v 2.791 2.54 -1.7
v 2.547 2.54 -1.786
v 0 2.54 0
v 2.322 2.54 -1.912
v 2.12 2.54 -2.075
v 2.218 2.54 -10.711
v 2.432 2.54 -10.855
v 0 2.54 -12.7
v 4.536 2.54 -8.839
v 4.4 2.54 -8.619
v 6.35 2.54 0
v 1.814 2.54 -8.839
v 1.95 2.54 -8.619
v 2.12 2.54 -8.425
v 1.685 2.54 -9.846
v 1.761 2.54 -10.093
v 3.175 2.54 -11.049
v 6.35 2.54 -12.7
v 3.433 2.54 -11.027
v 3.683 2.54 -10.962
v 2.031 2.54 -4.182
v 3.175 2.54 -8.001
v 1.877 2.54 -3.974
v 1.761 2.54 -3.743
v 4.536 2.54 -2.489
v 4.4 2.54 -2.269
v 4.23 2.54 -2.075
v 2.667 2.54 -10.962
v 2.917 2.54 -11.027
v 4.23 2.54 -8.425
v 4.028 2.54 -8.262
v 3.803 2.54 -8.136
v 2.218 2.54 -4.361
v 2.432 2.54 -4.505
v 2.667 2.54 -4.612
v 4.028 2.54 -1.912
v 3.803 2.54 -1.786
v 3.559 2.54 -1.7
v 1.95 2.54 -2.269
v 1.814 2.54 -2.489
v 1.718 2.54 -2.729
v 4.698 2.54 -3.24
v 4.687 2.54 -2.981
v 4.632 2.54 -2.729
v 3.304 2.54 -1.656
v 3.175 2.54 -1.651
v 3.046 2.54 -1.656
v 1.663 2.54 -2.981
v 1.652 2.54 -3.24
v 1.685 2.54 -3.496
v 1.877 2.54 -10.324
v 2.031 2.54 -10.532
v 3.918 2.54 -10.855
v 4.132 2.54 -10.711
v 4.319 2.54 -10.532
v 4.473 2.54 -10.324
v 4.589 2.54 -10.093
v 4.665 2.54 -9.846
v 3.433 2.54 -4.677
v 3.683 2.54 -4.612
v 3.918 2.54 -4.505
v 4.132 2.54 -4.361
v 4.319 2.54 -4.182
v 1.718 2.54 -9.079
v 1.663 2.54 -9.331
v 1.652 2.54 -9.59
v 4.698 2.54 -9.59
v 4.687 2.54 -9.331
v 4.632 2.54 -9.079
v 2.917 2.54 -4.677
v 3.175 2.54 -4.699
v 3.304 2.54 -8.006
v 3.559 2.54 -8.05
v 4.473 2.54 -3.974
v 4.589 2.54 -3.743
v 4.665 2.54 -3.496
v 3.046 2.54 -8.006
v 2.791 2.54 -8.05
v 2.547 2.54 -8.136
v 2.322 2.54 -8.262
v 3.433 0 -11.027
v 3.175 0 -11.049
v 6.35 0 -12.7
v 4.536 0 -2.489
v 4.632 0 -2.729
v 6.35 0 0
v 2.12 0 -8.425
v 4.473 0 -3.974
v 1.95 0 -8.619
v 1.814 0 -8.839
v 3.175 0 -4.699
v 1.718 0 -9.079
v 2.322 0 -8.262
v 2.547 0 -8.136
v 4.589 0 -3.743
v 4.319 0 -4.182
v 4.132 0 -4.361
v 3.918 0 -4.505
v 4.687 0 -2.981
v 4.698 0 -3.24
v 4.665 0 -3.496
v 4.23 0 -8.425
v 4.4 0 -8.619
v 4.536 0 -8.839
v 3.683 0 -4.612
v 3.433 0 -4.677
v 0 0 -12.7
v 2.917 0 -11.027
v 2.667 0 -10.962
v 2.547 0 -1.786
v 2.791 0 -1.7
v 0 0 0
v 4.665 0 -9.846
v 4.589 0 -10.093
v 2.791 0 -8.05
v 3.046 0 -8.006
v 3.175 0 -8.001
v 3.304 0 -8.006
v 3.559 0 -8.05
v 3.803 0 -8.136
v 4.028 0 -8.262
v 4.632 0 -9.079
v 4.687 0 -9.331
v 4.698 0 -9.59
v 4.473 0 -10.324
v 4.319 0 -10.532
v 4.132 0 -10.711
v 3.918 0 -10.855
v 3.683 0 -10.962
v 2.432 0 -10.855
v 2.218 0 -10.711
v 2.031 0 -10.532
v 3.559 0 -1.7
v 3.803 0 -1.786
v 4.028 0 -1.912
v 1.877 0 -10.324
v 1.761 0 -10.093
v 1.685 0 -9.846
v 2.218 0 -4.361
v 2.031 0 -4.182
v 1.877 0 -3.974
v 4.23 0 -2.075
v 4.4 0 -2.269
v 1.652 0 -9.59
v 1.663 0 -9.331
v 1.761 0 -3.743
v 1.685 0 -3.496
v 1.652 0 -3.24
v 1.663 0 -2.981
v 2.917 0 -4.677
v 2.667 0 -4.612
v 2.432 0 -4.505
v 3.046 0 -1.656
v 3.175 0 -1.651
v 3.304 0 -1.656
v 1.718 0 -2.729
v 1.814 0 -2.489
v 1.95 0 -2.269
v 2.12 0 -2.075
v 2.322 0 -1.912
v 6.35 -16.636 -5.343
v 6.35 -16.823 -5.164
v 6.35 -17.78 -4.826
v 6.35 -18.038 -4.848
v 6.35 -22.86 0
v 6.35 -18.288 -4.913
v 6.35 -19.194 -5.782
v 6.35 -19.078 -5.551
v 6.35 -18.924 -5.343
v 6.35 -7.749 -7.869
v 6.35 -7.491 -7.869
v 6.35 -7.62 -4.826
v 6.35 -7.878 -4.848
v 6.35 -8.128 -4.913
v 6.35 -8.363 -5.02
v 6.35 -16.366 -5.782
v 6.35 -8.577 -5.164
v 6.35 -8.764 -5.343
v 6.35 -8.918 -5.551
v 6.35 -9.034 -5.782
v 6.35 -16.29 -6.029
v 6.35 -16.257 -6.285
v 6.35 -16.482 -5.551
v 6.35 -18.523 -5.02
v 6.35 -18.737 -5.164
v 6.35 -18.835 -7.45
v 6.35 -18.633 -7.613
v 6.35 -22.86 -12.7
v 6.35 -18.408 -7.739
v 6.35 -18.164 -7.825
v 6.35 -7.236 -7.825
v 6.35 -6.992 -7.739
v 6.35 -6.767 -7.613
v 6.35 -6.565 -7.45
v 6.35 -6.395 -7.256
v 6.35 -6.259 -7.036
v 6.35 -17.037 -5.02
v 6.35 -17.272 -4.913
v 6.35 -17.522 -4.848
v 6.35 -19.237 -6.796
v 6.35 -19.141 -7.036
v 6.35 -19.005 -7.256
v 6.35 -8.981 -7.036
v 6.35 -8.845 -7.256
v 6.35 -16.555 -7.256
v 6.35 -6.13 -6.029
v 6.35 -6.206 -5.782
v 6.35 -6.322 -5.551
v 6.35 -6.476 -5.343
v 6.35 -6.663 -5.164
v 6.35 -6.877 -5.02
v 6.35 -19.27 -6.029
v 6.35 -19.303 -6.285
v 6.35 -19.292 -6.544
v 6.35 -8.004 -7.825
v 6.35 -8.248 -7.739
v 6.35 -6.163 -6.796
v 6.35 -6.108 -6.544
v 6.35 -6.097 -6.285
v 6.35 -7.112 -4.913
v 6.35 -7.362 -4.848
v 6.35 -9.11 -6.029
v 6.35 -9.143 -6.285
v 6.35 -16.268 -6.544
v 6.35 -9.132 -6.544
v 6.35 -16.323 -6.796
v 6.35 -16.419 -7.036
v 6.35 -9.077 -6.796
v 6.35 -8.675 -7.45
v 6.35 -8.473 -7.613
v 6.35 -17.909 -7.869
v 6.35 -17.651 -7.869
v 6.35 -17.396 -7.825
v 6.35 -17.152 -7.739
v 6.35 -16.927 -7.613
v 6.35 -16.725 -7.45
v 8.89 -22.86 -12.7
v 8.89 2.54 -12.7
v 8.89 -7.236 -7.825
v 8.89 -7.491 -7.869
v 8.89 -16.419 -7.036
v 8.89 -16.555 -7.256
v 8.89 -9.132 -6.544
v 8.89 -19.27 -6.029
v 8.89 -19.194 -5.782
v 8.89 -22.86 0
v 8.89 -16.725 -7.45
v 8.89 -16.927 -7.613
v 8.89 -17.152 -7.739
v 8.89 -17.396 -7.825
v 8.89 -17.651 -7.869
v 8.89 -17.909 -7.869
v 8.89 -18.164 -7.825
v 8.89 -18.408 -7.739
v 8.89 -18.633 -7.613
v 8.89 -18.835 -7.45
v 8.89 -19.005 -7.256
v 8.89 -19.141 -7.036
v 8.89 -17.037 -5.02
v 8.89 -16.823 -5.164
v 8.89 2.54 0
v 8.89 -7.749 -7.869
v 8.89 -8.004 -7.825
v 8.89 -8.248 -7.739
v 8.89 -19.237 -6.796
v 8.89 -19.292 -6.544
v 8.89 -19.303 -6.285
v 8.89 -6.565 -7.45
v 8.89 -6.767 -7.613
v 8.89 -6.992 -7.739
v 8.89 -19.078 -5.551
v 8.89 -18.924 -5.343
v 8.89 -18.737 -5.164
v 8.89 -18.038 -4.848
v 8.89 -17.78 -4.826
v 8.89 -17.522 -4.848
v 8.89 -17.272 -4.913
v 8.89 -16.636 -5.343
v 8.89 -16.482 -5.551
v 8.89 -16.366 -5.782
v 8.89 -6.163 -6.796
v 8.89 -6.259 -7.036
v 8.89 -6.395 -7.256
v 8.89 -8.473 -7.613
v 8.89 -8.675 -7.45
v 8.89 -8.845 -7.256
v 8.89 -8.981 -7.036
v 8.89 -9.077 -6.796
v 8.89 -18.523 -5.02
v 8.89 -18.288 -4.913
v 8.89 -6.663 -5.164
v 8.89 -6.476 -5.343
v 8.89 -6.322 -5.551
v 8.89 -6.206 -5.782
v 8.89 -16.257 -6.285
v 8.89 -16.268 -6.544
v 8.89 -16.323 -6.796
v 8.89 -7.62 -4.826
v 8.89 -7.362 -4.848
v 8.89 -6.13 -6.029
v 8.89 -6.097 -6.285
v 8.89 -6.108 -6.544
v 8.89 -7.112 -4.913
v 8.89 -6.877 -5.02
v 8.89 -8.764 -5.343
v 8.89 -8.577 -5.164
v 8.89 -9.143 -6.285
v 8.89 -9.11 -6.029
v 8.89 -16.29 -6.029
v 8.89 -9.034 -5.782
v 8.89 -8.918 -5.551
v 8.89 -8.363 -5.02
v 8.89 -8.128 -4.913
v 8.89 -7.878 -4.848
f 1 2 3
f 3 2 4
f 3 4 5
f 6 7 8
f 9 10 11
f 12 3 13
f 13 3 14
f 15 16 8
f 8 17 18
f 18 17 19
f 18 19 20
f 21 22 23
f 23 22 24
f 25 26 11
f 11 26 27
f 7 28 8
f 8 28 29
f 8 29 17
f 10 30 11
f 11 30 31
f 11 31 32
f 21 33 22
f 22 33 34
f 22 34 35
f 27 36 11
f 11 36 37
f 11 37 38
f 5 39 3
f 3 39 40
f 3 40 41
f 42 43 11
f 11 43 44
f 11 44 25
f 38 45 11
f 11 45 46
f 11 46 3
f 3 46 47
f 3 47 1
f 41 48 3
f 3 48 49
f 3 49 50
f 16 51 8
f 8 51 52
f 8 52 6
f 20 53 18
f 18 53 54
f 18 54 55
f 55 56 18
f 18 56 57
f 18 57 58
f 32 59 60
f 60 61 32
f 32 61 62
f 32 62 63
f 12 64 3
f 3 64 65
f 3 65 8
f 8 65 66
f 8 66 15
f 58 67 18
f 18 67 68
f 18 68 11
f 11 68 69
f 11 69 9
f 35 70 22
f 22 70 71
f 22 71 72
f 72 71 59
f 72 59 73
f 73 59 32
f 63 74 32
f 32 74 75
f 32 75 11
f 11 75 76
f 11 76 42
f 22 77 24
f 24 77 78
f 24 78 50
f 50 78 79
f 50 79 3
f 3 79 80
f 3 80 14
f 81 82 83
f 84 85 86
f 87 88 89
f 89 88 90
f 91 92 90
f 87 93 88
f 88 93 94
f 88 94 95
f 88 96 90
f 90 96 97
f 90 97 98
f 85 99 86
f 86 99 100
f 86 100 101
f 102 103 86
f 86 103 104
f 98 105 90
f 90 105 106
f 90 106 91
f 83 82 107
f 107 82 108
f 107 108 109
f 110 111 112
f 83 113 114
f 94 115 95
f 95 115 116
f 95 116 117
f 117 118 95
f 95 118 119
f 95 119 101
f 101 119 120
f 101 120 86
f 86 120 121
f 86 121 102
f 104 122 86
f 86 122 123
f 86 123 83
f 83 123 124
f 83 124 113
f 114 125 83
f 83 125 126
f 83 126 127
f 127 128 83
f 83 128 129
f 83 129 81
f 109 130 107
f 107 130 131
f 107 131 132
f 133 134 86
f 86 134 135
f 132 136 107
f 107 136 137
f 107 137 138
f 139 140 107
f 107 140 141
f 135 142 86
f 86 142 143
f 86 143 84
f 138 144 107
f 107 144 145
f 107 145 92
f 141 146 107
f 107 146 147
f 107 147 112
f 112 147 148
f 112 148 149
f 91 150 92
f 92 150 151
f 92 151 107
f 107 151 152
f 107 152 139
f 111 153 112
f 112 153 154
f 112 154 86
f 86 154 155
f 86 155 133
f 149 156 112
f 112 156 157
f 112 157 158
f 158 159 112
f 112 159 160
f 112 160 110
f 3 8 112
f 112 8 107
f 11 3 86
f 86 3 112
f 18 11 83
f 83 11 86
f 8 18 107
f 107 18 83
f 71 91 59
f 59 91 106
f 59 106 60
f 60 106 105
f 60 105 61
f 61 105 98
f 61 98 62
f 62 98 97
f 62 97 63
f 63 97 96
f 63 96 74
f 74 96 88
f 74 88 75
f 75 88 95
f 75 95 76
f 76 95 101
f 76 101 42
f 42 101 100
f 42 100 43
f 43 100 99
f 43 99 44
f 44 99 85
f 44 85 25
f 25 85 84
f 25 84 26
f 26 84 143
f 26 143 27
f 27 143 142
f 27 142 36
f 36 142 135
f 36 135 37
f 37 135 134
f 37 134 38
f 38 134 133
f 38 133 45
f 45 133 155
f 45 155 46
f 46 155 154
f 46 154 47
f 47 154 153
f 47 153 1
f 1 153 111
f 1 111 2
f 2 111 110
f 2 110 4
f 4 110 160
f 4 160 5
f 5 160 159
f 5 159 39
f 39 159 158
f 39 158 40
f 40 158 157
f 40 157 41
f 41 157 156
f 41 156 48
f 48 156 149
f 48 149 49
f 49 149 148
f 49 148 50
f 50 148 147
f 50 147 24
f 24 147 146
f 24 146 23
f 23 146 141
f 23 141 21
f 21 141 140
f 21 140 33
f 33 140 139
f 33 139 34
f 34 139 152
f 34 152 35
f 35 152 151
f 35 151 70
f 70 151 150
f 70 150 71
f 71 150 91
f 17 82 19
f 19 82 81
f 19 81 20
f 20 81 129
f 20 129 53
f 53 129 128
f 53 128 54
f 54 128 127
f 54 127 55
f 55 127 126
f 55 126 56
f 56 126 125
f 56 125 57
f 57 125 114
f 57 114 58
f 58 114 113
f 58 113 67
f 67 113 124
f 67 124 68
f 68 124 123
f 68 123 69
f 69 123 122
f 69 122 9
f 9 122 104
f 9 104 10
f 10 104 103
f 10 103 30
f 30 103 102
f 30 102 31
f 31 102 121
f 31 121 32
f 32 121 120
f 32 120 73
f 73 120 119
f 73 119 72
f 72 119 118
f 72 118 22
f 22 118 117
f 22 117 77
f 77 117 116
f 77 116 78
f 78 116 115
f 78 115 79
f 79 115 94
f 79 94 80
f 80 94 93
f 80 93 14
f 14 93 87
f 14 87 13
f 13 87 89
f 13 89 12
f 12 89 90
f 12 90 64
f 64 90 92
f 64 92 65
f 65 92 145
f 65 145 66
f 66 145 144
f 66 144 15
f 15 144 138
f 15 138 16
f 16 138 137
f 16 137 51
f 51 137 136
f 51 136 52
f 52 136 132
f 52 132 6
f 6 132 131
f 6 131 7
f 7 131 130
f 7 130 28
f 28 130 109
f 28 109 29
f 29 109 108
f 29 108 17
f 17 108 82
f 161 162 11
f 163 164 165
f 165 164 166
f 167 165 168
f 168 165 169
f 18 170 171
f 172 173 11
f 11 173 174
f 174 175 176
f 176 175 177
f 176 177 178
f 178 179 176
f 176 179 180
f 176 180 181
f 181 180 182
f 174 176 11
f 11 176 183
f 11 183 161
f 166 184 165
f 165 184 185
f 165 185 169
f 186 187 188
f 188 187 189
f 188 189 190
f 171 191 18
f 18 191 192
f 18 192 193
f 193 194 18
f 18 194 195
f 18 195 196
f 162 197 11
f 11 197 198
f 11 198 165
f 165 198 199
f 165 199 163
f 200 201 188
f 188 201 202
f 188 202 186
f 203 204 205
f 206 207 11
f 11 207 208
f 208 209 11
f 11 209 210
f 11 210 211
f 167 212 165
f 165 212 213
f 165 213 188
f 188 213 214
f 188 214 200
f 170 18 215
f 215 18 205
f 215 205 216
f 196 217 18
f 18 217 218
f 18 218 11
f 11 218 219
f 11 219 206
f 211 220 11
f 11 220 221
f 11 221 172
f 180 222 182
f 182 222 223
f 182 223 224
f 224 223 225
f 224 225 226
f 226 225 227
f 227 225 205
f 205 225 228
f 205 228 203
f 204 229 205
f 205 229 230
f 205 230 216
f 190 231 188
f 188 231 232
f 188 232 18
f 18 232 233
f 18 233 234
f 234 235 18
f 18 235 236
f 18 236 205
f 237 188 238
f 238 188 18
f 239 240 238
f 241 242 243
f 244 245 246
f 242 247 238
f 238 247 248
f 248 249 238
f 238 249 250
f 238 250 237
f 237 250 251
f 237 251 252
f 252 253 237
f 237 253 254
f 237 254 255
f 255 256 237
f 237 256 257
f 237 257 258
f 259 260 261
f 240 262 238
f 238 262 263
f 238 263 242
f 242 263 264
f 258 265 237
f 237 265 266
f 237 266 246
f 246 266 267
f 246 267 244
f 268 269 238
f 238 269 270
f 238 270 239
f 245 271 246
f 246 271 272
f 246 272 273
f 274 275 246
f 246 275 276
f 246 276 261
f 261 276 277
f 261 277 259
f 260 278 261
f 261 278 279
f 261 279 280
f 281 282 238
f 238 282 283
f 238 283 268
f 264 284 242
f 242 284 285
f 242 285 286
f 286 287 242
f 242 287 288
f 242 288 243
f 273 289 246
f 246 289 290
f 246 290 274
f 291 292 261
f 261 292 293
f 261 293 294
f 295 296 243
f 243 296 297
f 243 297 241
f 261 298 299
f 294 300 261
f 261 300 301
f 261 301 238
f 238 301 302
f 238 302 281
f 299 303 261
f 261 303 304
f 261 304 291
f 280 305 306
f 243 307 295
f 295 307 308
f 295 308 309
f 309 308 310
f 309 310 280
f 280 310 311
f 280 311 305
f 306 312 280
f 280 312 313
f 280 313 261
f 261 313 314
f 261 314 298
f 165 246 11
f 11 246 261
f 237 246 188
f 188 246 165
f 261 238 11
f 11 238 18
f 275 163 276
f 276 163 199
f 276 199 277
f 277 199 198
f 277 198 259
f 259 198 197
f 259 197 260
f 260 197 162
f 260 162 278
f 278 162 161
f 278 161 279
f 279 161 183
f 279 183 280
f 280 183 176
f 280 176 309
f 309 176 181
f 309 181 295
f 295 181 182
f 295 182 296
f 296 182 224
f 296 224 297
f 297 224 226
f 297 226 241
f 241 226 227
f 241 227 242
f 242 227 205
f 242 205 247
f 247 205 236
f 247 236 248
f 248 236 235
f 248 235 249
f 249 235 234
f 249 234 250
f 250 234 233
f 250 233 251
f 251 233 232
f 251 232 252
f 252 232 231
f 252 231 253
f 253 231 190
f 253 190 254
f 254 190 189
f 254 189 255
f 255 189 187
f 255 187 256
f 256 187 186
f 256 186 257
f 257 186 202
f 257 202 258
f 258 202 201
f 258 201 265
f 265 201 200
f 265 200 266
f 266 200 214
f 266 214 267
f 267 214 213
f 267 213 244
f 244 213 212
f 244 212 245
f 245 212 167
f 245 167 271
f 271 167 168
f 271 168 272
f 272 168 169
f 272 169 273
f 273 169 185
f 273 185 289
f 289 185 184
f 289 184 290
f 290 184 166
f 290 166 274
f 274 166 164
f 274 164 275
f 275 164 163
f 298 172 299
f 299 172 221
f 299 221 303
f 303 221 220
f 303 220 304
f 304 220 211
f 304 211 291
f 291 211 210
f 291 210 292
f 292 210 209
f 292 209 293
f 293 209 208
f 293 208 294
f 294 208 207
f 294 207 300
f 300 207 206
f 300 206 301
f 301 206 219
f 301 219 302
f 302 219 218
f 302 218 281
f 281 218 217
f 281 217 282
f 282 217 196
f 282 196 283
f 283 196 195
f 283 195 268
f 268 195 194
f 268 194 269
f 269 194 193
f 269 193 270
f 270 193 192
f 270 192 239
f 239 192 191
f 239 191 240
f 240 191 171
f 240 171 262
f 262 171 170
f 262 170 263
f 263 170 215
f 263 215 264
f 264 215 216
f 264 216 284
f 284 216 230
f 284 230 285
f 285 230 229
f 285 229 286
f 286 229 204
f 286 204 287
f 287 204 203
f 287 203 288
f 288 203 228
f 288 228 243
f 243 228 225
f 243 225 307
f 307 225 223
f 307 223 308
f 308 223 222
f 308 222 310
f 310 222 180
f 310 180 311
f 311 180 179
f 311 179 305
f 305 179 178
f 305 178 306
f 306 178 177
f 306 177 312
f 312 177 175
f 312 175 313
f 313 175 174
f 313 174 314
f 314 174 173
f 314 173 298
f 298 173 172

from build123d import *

# Parameters (mm, degrees)
SKETCH1_W           = 6.35
SKETCH1_H           = 12.7
SKETCH1_R           = 1.524
BOSS_EXTRUDE1_DEPTH = 2.54
SKETCH3_W           = 2.54
SKETCH3_H           = 12.7
BOSS_EXTRUDE3_DEPTH = 25.4
SKETCH4_R           = 1.524
CUT_EXTRUDE1_DEPTH  = 27.910817528


with BuildPart() as part:
    # Sketch1 → Boss-Extrude1 (new body)
    with BuildSketch(Plane(origin=(0, 0, 0), x_dir=(1, 0, 0), z_dir=(0, 1, 0))):
        with Locations((3.175, 6.35)):
            Rectangle(SKETCH1_W, SKETCH1_H)
        with Locations(Location((3.175, 3.175, 0), (0, 0, 270))):
            Circle(SKETCH1_R, mode=Mode.SUBTRACT)
        with Locations(Location((3.175, 9.525, 0), (0, 0, 270))):
            Circle(SKETCH1_R, mode=Mode.SUBTRACT)
    extrude(amount=BOSS_EXTRUDE1_DEPTH)


with BuildPart() as body_2:
    # Sketch3 → Boss-Extrude3 (new body)
    with BuildSketch(Plane(origin=(0, 2.54, 0), x_dir=(1, 0, 0), z_dir=(0, 1, 0))):
        with Locations((7.62, 6.35)):
            Rectangle(SKETCH3_W, SKETCH3_H)
    extrude(amount=-BOSS_EXTRUDE3_DEPTH)

    # Sketch4 → Cut-Extrude1 (cut, through all)
    with BuildSketch(Plane.ZY.offset(-6.35)):
        with Locations((-6.35, -7.62)):
            Circle(SKETCH4_R)
        with Locations((-6.35, -17.78)):
            Circle(SKETCH4_R)
    extrude(amount=-CUT_EXTRUDE1_DEPTH, mode=Mode.SUBTRACT)


solid = Compound([part.part, body_2.part])
